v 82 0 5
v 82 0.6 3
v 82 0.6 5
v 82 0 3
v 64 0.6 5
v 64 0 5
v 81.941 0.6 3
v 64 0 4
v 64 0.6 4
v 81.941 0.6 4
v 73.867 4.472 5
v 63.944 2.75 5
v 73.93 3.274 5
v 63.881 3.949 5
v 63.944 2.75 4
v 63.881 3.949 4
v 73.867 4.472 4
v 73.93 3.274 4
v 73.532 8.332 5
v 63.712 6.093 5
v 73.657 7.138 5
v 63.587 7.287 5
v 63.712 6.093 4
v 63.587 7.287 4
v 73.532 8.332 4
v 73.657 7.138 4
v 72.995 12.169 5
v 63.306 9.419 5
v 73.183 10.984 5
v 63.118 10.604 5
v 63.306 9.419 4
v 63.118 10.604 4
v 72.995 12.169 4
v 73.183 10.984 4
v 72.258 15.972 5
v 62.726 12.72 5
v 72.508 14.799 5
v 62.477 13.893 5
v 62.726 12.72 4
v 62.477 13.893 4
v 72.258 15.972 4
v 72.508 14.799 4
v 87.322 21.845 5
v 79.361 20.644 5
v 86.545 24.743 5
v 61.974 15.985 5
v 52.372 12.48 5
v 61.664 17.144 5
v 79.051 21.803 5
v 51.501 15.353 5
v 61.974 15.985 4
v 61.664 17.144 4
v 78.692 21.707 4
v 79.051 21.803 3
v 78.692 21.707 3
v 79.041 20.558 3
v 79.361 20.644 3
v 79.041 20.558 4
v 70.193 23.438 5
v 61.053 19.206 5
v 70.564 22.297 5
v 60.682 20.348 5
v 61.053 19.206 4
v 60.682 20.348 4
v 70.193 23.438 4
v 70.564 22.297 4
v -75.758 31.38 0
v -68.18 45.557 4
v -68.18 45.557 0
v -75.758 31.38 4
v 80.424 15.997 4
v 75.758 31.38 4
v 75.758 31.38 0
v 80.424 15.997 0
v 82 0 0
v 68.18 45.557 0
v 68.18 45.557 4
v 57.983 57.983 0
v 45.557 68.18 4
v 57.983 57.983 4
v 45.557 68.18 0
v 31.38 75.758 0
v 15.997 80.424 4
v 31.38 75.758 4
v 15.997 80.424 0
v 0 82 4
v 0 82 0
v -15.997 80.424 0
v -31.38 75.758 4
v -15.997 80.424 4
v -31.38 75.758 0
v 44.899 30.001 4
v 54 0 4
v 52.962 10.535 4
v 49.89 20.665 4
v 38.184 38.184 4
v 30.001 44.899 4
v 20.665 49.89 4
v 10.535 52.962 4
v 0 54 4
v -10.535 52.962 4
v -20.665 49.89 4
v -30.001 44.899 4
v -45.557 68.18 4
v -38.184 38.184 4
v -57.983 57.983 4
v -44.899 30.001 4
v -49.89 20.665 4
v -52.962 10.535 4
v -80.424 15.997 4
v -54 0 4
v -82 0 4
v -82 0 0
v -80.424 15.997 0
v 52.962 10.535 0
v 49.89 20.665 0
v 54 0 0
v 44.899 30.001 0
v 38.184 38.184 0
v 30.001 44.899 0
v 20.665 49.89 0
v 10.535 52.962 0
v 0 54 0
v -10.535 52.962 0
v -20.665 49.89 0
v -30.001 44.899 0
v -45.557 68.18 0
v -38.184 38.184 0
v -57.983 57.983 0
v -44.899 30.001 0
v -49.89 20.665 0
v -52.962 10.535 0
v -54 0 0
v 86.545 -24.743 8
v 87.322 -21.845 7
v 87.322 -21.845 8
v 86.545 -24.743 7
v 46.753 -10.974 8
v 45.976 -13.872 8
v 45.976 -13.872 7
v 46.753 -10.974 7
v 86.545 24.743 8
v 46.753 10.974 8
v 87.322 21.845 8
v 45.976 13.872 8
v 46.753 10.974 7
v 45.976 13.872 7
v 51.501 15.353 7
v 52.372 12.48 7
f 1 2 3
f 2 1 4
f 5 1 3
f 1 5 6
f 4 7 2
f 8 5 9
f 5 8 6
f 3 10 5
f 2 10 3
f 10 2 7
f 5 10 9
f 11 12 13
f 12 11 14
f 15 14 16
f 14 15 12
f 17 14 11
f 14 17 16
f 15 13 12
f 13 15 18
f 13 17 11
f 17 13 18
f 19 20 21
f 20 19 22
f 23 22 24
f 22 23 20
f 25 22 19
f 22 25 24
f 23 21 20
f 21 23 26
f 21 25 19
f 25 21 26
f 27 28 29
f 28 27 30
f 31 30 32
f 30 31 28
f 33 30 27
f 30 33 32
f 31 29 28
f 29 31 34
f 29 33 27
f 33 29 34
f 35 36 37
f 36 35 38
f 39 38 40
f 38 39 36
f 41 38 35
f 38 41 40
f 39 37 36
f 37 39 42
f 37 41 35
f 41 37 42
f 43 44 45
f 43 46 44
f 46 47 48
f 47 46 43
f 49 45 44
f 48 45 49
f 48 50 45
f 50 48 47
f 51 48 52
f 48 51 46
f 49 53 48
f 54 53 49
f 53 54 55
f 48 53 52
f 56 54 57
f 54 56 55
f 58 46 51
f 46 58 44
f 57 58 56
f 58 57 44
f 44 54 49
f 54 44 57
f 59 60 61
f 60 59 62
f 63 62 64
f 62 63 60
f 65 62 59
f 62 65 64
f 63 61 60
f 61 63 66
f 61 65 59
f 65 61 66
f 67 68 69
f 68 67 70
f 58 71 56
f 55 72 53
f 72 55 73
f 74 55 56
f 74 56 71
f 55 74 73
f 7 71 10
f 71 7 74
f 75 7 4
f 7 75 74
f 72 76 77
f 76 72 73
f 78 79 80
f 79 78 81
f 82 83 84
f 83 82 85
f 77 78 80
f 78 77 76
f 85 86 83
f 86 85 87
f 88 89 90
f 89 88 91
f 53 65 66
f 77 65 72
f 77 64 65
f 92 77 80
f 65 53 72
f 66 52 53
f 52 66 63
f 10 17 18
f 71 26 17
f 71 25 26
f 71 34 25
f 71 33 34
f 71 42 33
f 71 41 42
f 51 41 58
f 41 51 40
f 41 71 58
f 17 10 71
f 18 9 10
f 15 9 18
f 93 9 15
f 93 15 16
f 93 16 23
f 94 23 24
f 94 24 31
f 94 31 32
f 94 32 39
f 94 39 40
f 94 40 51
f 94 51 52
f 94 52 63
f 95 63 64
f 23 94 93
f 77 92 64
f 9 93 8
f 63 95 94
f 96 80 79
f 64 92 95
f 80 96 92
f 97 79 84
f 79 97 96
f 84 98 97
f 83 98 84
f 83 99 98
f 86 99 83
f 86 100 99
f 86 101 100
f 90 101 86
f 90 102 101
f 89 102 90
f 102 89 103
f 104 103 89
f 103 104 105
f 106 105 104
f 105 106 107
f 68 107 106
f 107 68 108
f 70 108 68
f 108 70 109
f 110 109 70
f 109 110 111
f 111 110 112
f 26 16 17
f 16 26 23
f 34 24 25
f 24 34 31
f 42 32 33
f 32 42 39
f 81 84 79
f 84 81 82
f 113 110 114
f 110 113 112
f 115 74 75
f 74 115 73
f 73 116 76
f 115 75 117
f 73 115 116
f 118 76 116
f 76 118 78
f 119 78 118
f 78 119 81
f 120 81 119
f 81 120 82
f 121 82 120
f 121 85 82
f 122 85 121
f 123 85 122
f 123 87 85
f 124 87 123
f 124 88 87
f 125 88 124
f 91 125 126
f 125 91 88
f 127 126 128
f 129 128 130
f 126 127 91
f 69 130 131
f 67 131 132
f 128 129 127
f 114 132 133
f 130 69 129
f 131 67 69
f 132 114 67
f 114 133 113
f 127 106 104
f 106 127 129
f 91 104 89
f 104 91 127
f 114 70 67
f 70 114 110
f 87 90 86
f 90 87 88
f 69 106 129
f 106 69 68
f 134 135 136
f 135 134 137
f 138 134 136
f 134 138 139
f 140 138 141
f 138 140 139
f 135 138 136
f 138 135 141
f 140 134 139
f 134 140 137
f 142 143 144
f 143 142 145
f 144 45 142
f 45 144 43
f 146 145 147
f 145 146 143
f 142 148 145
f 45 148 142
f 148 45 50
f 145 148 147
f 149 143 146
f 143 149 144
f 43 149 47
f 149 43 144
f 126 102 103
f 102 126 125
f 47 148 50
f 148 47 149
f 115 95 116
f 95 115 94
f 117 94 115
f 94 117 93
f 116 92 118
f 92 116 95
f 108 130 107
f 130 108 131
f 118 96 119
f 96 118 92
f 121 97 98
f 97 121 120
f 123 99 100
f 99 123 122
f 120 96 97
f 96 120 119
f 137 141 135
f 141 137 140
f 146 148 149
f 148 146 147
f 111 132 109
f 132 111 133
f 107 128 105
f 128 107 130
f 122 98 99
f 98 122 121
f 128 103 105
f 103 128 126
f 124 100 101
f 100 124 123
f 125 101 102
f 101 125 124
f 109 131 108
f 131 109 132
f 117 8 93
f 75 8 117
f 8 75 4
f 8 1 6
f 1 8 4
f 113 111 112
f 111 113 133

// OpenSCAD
// file: ../s1_parameters.scad
// Shared S1 prototype parameters.
// Units are millimeters. Values are provisional fit/geometry defaults.

$fn = 32;

s1_length_over_coupler_faces = 320;
s1_structural_deck_length = 280;
s1_sled_width = 72;
s1_sled_height = 14;
s1_deck_height_above_g0 = 30;
s1_wall_thickness = 2.4;
s1_corner_radius = 6;
s1_printer_tolerance = 0.35;
s1_min_feature = 1.2;

s1_module_length = 240;
s1_module_width = 64;
s1_module_interface_height = 5;
s1_module_corner_radius = 7;

s1_mount_x = 90;
s1_mount_y = 24;
s1_mount_pin_diameter = 5;
s1_mount_clearance = 0.35;
s1_latch_slot_length = 18;
s1_latch_slot_width = 6;

s1_coupler_pivot_spacing = 280;
s1_coupler_drawbar_length = 28;
s1_coupler_pivot_diameter = 8;
s1_coupler_yaw_normal_deg = 15;
s1_coupler_yaw_hard_stop_deg = 18;
s1_coupler_vertical_play = 1.5;

s1_ballast_pocket_length = 36;
s1_ballast_pocket_width = 18;
s1_ballast_pocket_depth = 6;
s1_ballast_channel_length = 108;
s1_ballast_channel_width = 14;
s1_ballast_channel_depth = 5;

s1_split_key_length = 14;
s1_split_key_width = 8;
s1_split_key_height = 5;
s1_split_plane_x = 0;

s1_support_node_x = 180;
s1_support_node_y = 50;

s1_bed_x = 220;
s1_bed_y = 220;

module rounded_box(size, radius = 3) {
  r = min(radius, min(size[0], size[1]) / 2 - 0.01);
  hull() {
    for (x = [-size[0] / 2 + r, size[0] / 2 - r])
      for (y = [-size[1] / 2 + r, size[1] / 2 - r])
        translate([x, y, 0])
          cylinder(h = size[2], r = r);
  }
}

module datum_cross(size = 18, height = 0.9, width = 1.4) {
  translate([0, -width / 2, 0]) cube([size, width, height], center = true);
  translate([-width / 2, 0, 0]) cube([width, size, height], center = true);
}

module centerline_marks(length, width, z, height = 0.8) {
  translate([0, -0.55, z]) cube([length, 1.1, height], center = true);
  translate([-0.55, 0, z]) cube([1.1, width, height], center = true);
}

module module_attachment_positions() {
  for (x = [-s1_mount_x, s1_mount_x])
    for (y = [-s1_mount_y, s1_mount_y])
      translate([x, y, 0]) children();
}

module support_node_positions() {
  for (x = [-s1_support_node_x / 2, s1_support_node_x / 2])
    for (y = [-s1_support_node_y / 2, s1_support_node_y / 2])
      translate([x, y, 0]) children();
}

module ballast_pocket_positions() {
  for (x = [-70, 70])
    for (y = [-20, 20])
      translate([x, y, 0]) children();
}

module mount_pin_holes(height = 30, clearance = s1_mount_clearance) {
  module_attachment_positions()
    cylinder(h = height, r = s1_mount_pin_diameter / 2 + clearance, center = true);
}

module latch_slots(height = 20, clearance = s1_mount_clearance) {
  module_attachment_positions()
    translate([0, 0, 0])
      rounded_box([s1_latch_slot_length + clearance, s1_latch_slot_width + clearance, height], 1.5);
}

module module_interface_cutouts(height = 20, clearance = s1_mount_clearance) {
  mount_pin_holes(height = height, clearance = clearance);
  latch_slots(height = height, clearance = clearance);
}

module module_interface_base(height = s1_module_interface_height, radius = 6, cutout_height = 14) {
  difference() {
    rounded_box([s1_module_length, s1_module_width, height], radius);
    module_interface_cutouts(height = cutout_height);
  }
}

module module_interface_underside(height = 4) {
  module_attachment_positions()
    cylinder(h = height, r = s1_mount_pin_diameter / 2, center = false);
}

module split_front_clip(length, width = 180, height = 180) {
  translate([length / 4 + 0.02, 0, height / 2 - 20])
    cube([length / 2 + 0.04, width, height], center = true);
}

module split_rear_clip(length, width = 180, height = 180) {
  translate([-length / 4 - 0.02, 0, height / 2 - 20])
    cube([length / 2 + 0.04, width, height], center = true);
}

module split_alignment_male(z = 2, clearance = 0) {
  for (y = [-18, 18])
    translate([
      -s1_split_key_length + clearance,
      y - s1_split_key_width / 2 + clearance,
      z
    ])
      cube([
        s1_split_key_length + 10,
        s1_split_key_width - 2 * clearance,
        s1_split_key_height - 2 * clearance
      ]);
}

module split_alignment_receiver(z = 2) {
  split_alignment_male(z = z - s1_printer_tolerance / 2, clearance = -s1_printer_tolerance);
}

module split_alignment_sockets(side = "front", z = 0.4) {
  socket_depth = min(s1_split_key_height, 3.0 + z);
  socket_length = s1_split_key_length + 10;
  socket_width = s1_split_key_width + 2 * s1_printer_tolerance;
  x_center = side == "rear" ? -socket_length / 2 + 0.4 : socket_length / 2 - 0.4;
  for (y = [-18, 18])
    translate([x_center, y, -0.05])
      rounded_box([socket_length, socket_width, socket_depth + 0.05], 1.1);
}

module loose_alignment_keys() {
  for (y = [-8, 8])
    translate([0, y, 0])
      rounded_box([44, s1_split_key_width - 0.4, s1_split_key_height - 0.4], 1.2);
}

module module_split_keys_front(z = 2) {
  split_alignment_male(z = z);
}

module module_split_keys_rear(z = 2) {
  split_alignment_receiver(z = z);
}

module aerodynamic_pod_shell(length, width, height, nose = 24, roof_inset = 10, radius = 7) {
  hull() {
    rounded_box([length, width, 3], radius);
    translate([0, 0, height - 3])
      rounded_box([length - 2 * nose, width - roof_inset, 3], max(2, radius - 2));
  }
}

module side_panel_breaks(length, width, z, height = 1.0) {
  for (x = [-length / 4, 0, length / 4])
    translate([x, width / 2 - 8, z])
      cube([1.2, 1.4, height], center = true);
  for (x = [-length / 4, 0, length / 4])
    translate([x, -width / 2 + 8, z])
      cube([1.2, 1.4, height], center = true);
}

module cg_marker(z, size = 16) {
  translate([0, 0, z]) datum_cross(size = size, height = 0.8, width = 1.2);
}

module ballast_blocks(z = 5) {
  ballast_pocket_positions()
    translate([0, 0, z])
      rounded_box([s1_ballast_pocket_length - 5, s1_ballast_pocket_width - 4, 6], 2);
}

module module_half(part, length, width, height) {
  if (part == "front")
    split_front_clip(length, width, height) children();
  else if (part == "rear")
    split_rear_clip(length, width, height) children();
  else
    children();
}
// main file
include <../s1_parameters.scad>

module tick(angle, length = 12, width = 1.2) {
  rotate([0, 0, angle])
    translate([64, -width / 2, 3])
      cube([length, width, 2]);
}

module coupler_angle_gauge() {
  difference() {
    union() {
      cylinder(h = 4, r = 82);
      translate([0, 0, 4])
        cylinder(h = 2, r = 8);
      for (a = [-18 : 3 : 18])
        tick(a, length = (a == -15 || a == 0 || a == 15) ? 18 : 10);
      rotate([0, 0, -s1_coupler_yaw_normal_deg])
        translate([48, -1.5, 5])
          cube([42, 3, 3]);
      rotate([0, 0, s1_coupler_yaw_normal_deg])
        translate([48, -1.5, 5])
          cube([42, 3, 3]);
    }
    translate([0, 0, -1])
      cylinder(h = 8, r = 54);
    translate([-90, -90, -1])
      cube([180, 90, 8]);
    translate([0, 0, -1])
      cylinder(h = 10, r = s1_coupler_pivot_diameter / 2 + s1_printer_tolerance);
  }
}

coupler_angle_gauge();
